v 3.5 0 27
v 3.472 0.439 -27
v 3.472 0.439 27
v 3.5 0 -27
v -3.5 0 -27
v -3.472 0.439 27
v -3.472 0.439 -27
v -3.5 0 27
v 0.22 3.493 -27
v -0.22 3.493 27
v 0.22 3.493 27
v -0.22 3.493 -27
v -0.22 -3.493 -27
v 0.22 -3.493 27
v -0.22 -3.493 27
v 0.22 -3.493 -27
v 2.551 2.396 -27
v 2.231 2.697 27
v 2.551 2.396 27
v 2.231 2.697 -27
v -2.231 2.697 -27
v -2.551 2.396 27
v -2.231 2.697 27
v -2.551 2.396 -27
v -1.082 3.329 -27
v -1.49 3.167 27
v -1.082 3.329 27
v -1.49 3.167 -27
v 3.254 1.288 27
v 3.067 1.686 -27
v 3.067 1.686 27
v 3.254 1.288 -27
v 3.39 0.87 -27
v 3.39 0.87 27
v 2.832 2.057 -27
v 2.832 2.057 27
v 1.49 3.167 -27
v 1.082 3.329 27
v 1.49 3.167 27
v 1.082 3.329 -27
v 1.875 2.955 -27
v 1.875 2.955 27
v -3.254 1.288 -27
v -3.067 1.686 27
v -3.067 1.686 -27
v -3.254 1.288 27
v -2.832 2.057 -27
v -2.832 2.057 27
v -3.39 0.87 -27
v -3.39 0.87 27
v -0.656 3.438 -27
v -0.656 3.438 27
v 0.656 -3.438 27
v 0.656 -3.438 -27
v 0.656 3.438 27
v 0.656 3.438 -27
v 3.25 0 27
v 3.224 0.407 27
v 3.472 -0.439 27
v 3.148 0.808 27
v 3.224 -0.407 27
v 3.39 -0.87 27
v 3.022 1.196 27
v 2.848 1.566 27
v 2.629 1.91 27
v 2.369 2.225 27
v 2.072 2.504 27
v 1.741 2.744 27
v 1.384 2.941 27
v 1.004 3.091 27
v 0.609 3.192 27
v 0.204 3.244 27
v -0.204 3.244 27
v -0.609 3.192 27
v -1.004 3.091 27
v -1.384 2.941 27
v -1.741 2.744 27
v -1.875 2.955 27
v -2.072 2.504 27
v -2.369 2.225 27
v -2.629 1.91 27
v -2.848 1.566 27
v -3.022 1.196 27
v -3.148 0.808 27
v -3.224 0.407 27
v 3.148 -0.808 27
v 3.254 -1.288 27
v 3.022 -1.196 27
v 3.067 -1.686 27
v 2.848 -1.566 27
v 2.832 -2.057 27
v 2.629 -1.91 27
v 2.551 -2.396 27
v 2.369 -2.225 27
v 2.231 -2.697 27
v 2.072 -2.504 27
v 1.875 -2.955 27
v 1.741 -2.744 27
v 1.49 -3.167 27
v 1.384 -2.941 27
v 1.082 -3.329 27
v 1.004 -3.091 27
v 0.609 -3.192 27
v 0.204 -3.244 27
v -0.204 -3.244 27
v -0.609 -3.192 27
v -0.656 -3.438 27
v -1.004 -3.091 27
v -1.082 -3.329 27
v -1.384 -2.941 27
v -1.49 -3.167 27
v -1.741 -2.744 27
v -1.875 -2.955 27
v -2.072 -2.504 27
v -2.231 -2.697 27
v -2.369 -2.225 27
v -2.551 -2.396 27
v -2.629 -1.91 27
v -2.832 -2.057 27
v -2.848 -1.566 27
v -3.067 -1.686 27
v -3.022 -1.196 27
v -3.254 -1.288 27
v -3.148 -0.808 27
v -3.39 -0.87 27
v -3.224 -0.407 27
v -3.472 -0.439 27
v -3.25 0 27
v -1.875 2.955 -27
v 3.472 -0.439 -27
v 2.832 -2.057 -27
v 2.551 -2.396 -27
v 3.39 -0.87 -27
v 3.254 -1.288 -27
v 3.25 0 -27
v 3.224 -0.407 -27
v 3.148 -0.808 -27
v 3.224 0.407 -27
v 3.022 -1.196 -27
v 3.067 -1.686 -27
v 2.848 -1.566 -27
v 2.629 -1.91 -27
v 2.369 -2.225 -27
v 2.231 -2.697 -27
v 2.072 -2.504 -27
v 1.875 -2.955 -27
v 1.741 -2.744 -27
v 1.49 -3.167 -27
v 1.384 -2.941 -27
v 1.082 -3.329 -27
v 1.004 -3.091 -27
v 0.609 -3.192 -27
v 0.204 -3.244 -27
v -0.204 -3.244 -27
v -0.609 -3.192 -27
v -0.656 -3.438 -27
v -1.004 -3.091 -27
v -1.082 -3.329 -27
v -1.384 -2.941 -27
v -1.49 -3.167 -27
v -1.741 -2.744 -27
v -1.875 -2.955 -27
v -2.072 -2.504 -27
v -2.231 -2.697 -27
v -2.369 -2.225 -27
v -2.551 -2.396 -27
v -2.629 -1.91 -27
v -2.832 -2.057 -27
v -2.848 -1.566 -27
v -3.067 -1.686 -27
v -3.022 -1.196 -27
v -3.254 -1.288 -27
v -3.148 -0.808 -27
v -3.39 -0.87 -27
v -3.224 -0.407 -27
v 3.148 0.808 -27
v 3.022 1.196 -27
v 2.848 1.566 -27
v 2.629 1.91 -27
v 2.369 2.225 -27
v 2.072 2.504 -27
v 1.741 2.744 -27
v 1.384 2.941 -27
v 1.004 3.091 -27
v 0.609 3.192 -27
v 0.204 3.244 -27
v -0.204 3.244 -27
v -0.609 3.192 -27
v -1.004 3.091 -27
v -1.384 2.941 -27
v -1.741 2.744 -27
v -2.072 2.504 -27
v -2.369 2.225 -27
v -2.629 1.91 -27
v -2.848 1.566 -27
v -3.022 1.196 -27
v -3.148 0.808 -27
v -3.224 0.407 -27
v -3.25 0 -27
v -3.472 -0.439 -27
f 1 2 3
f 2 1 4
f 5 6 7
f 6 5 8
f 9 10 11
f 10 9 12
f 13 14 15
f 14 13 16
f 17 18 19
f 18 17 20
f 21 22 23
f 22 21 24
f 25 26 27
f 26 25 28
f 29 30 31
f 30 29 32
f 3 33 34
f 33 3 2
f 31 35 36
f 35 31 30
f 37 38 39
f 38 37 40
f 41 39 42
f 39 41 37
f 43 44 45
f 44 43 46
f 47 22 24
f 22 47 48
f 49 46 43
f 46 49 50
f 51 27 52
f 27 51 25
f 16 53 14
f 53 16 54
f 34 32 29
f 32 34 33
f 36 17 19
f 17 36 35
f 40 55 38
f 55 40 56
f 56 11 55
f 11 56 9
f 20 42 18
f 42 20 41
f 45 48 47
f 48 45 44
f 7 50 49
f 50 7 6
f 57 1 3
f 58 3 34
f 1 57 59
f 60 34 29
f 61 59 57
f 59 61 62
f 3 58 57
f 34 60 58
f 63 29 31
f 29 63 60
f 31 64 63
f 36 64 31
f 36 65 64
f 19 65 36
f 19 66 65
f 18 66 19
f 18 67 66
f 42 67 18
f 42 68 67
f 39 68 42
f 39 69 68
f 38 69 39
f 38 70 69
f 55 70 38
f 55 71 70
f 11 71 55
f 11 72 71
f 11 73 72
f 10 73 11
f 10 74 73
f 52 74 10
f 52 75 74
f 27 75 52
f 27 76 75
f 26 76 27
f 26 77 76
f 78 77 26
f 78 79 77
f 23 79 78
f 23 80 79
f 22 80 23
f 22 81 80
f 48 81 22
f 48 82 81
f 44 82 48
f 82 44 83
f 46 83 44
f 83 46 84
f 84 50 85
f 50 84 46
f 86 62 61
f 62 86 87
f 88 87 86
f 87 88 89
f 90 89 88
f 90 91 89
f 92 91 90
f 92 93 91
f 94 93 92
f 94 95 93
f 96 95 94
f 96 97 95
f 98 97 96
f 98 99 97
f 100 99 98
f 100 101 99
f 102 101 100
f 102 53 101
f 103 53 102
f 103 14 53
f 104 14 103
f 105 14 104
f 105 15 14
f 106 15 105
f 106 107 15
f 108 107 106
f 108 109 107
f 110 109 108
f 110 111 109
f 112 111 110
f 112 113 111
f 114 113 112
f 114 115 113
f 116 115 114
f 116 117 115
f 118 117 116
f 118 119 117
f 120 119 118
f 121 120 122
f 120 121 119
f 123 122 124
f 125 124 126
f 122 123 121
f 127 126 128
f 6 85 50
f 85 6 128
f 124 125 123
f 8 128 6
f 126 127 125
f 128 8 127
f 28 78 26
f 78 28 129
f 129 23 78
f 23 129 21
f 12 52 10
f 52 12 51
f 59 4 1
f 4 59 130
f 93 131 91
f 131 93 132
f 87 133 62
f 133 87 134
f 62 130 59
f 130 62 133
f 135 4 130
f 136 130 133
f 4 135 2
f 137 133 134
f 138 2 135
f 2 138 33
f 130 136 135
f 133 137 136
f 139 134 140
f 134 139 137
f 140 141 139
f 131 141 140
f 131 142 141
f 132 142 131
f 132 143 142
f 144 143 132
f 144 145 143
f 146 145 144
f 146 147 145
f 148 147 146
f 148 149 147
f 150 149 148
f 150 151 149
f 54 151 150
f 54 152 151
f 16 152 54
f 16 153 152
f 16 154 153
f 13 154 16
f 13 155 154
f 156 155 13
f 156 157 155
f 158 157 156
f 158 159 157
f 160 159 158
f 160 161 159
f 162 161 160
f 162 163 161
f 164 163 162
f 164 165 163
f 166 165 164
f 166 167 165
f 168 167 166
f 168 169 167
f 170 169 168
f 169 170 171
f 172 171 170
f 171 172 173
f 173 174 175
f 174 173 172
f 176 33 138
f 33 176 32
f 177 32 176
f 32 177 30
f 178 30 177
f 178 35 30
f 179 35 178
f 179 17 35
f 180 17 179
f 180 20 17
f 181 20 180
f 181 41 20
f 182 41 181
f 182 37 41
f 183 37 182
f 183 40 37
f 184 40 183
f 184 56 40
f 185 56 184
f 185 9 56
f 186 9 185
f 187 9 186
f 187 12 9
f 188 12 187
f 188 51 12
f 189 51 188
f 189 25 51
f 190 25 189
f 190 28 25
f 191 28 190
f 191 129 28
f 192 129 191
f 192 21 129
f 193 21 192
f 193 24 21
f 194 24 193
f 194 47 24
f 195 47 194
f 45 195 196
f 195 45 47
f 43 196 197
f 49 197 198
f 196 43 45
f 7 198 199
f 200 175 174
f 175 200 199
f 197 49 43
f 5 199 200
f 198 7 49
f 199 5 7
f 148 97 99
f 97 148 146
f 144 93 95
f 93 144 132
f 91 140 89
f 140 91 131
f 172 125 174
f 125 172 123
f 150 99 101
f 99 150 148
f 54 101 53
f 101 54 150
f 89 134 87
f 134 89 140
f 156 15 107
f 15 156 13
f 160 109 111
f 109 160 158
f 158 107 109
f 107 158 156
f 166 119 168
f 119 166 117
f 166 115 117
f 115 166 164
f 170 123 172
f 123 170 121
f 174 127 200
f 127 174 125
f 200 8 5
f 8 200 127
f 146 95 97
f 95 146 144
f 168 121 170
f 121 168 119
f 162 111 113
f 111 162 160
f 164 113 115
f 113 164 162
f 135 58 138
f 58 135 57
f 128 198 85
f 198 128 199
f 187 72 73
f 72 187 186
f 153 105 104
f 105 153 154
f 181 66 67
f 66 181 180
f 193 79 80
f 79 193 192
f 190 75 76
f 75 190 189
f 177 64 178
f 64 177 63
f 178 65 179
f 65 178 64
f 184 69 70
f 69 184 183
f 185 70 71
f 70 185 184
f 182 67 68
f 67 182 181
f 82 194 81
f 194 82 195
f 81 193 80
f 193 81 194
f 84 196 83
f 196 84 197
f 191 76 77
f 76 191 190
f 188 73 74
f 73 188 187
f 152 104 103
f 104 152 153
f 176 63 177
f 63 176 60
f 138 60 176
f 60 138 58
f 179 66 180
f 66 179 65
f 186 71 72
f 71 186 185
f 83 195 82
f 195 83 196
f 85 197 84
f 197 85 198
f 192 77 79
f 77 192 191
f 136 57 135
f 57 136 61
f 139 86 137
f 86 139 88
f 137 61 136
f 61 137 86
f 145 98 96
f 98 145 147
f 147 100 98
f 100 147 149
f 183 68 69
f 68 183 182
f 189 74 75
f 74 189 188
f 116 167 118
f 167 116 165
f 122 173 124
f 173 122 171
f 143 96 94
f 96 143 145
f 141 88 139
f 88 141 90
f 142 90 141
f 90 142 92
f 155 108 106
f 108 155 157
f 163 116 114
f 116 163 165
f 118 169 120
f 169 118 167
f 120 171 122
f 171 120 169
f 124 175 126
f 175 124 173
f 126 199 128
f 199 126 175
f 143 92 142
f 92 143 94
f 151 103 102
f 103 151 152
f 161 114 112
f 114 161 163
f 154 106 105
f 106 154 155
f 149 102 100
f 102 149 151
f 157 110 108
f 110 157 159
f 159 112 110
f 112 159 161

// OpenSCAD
$fn = 50;


difference() {
	union() {
		translate(v = [0, 0, -27.0000000000]) {
			cylinder(h = 54, r = 3.5000000000);
		}
	}
	union() {
		translate(v = [0, 0, -100.0000000000]) {
			cylinder(h = 200, r = 3.2500000000);
		}
	}
}
